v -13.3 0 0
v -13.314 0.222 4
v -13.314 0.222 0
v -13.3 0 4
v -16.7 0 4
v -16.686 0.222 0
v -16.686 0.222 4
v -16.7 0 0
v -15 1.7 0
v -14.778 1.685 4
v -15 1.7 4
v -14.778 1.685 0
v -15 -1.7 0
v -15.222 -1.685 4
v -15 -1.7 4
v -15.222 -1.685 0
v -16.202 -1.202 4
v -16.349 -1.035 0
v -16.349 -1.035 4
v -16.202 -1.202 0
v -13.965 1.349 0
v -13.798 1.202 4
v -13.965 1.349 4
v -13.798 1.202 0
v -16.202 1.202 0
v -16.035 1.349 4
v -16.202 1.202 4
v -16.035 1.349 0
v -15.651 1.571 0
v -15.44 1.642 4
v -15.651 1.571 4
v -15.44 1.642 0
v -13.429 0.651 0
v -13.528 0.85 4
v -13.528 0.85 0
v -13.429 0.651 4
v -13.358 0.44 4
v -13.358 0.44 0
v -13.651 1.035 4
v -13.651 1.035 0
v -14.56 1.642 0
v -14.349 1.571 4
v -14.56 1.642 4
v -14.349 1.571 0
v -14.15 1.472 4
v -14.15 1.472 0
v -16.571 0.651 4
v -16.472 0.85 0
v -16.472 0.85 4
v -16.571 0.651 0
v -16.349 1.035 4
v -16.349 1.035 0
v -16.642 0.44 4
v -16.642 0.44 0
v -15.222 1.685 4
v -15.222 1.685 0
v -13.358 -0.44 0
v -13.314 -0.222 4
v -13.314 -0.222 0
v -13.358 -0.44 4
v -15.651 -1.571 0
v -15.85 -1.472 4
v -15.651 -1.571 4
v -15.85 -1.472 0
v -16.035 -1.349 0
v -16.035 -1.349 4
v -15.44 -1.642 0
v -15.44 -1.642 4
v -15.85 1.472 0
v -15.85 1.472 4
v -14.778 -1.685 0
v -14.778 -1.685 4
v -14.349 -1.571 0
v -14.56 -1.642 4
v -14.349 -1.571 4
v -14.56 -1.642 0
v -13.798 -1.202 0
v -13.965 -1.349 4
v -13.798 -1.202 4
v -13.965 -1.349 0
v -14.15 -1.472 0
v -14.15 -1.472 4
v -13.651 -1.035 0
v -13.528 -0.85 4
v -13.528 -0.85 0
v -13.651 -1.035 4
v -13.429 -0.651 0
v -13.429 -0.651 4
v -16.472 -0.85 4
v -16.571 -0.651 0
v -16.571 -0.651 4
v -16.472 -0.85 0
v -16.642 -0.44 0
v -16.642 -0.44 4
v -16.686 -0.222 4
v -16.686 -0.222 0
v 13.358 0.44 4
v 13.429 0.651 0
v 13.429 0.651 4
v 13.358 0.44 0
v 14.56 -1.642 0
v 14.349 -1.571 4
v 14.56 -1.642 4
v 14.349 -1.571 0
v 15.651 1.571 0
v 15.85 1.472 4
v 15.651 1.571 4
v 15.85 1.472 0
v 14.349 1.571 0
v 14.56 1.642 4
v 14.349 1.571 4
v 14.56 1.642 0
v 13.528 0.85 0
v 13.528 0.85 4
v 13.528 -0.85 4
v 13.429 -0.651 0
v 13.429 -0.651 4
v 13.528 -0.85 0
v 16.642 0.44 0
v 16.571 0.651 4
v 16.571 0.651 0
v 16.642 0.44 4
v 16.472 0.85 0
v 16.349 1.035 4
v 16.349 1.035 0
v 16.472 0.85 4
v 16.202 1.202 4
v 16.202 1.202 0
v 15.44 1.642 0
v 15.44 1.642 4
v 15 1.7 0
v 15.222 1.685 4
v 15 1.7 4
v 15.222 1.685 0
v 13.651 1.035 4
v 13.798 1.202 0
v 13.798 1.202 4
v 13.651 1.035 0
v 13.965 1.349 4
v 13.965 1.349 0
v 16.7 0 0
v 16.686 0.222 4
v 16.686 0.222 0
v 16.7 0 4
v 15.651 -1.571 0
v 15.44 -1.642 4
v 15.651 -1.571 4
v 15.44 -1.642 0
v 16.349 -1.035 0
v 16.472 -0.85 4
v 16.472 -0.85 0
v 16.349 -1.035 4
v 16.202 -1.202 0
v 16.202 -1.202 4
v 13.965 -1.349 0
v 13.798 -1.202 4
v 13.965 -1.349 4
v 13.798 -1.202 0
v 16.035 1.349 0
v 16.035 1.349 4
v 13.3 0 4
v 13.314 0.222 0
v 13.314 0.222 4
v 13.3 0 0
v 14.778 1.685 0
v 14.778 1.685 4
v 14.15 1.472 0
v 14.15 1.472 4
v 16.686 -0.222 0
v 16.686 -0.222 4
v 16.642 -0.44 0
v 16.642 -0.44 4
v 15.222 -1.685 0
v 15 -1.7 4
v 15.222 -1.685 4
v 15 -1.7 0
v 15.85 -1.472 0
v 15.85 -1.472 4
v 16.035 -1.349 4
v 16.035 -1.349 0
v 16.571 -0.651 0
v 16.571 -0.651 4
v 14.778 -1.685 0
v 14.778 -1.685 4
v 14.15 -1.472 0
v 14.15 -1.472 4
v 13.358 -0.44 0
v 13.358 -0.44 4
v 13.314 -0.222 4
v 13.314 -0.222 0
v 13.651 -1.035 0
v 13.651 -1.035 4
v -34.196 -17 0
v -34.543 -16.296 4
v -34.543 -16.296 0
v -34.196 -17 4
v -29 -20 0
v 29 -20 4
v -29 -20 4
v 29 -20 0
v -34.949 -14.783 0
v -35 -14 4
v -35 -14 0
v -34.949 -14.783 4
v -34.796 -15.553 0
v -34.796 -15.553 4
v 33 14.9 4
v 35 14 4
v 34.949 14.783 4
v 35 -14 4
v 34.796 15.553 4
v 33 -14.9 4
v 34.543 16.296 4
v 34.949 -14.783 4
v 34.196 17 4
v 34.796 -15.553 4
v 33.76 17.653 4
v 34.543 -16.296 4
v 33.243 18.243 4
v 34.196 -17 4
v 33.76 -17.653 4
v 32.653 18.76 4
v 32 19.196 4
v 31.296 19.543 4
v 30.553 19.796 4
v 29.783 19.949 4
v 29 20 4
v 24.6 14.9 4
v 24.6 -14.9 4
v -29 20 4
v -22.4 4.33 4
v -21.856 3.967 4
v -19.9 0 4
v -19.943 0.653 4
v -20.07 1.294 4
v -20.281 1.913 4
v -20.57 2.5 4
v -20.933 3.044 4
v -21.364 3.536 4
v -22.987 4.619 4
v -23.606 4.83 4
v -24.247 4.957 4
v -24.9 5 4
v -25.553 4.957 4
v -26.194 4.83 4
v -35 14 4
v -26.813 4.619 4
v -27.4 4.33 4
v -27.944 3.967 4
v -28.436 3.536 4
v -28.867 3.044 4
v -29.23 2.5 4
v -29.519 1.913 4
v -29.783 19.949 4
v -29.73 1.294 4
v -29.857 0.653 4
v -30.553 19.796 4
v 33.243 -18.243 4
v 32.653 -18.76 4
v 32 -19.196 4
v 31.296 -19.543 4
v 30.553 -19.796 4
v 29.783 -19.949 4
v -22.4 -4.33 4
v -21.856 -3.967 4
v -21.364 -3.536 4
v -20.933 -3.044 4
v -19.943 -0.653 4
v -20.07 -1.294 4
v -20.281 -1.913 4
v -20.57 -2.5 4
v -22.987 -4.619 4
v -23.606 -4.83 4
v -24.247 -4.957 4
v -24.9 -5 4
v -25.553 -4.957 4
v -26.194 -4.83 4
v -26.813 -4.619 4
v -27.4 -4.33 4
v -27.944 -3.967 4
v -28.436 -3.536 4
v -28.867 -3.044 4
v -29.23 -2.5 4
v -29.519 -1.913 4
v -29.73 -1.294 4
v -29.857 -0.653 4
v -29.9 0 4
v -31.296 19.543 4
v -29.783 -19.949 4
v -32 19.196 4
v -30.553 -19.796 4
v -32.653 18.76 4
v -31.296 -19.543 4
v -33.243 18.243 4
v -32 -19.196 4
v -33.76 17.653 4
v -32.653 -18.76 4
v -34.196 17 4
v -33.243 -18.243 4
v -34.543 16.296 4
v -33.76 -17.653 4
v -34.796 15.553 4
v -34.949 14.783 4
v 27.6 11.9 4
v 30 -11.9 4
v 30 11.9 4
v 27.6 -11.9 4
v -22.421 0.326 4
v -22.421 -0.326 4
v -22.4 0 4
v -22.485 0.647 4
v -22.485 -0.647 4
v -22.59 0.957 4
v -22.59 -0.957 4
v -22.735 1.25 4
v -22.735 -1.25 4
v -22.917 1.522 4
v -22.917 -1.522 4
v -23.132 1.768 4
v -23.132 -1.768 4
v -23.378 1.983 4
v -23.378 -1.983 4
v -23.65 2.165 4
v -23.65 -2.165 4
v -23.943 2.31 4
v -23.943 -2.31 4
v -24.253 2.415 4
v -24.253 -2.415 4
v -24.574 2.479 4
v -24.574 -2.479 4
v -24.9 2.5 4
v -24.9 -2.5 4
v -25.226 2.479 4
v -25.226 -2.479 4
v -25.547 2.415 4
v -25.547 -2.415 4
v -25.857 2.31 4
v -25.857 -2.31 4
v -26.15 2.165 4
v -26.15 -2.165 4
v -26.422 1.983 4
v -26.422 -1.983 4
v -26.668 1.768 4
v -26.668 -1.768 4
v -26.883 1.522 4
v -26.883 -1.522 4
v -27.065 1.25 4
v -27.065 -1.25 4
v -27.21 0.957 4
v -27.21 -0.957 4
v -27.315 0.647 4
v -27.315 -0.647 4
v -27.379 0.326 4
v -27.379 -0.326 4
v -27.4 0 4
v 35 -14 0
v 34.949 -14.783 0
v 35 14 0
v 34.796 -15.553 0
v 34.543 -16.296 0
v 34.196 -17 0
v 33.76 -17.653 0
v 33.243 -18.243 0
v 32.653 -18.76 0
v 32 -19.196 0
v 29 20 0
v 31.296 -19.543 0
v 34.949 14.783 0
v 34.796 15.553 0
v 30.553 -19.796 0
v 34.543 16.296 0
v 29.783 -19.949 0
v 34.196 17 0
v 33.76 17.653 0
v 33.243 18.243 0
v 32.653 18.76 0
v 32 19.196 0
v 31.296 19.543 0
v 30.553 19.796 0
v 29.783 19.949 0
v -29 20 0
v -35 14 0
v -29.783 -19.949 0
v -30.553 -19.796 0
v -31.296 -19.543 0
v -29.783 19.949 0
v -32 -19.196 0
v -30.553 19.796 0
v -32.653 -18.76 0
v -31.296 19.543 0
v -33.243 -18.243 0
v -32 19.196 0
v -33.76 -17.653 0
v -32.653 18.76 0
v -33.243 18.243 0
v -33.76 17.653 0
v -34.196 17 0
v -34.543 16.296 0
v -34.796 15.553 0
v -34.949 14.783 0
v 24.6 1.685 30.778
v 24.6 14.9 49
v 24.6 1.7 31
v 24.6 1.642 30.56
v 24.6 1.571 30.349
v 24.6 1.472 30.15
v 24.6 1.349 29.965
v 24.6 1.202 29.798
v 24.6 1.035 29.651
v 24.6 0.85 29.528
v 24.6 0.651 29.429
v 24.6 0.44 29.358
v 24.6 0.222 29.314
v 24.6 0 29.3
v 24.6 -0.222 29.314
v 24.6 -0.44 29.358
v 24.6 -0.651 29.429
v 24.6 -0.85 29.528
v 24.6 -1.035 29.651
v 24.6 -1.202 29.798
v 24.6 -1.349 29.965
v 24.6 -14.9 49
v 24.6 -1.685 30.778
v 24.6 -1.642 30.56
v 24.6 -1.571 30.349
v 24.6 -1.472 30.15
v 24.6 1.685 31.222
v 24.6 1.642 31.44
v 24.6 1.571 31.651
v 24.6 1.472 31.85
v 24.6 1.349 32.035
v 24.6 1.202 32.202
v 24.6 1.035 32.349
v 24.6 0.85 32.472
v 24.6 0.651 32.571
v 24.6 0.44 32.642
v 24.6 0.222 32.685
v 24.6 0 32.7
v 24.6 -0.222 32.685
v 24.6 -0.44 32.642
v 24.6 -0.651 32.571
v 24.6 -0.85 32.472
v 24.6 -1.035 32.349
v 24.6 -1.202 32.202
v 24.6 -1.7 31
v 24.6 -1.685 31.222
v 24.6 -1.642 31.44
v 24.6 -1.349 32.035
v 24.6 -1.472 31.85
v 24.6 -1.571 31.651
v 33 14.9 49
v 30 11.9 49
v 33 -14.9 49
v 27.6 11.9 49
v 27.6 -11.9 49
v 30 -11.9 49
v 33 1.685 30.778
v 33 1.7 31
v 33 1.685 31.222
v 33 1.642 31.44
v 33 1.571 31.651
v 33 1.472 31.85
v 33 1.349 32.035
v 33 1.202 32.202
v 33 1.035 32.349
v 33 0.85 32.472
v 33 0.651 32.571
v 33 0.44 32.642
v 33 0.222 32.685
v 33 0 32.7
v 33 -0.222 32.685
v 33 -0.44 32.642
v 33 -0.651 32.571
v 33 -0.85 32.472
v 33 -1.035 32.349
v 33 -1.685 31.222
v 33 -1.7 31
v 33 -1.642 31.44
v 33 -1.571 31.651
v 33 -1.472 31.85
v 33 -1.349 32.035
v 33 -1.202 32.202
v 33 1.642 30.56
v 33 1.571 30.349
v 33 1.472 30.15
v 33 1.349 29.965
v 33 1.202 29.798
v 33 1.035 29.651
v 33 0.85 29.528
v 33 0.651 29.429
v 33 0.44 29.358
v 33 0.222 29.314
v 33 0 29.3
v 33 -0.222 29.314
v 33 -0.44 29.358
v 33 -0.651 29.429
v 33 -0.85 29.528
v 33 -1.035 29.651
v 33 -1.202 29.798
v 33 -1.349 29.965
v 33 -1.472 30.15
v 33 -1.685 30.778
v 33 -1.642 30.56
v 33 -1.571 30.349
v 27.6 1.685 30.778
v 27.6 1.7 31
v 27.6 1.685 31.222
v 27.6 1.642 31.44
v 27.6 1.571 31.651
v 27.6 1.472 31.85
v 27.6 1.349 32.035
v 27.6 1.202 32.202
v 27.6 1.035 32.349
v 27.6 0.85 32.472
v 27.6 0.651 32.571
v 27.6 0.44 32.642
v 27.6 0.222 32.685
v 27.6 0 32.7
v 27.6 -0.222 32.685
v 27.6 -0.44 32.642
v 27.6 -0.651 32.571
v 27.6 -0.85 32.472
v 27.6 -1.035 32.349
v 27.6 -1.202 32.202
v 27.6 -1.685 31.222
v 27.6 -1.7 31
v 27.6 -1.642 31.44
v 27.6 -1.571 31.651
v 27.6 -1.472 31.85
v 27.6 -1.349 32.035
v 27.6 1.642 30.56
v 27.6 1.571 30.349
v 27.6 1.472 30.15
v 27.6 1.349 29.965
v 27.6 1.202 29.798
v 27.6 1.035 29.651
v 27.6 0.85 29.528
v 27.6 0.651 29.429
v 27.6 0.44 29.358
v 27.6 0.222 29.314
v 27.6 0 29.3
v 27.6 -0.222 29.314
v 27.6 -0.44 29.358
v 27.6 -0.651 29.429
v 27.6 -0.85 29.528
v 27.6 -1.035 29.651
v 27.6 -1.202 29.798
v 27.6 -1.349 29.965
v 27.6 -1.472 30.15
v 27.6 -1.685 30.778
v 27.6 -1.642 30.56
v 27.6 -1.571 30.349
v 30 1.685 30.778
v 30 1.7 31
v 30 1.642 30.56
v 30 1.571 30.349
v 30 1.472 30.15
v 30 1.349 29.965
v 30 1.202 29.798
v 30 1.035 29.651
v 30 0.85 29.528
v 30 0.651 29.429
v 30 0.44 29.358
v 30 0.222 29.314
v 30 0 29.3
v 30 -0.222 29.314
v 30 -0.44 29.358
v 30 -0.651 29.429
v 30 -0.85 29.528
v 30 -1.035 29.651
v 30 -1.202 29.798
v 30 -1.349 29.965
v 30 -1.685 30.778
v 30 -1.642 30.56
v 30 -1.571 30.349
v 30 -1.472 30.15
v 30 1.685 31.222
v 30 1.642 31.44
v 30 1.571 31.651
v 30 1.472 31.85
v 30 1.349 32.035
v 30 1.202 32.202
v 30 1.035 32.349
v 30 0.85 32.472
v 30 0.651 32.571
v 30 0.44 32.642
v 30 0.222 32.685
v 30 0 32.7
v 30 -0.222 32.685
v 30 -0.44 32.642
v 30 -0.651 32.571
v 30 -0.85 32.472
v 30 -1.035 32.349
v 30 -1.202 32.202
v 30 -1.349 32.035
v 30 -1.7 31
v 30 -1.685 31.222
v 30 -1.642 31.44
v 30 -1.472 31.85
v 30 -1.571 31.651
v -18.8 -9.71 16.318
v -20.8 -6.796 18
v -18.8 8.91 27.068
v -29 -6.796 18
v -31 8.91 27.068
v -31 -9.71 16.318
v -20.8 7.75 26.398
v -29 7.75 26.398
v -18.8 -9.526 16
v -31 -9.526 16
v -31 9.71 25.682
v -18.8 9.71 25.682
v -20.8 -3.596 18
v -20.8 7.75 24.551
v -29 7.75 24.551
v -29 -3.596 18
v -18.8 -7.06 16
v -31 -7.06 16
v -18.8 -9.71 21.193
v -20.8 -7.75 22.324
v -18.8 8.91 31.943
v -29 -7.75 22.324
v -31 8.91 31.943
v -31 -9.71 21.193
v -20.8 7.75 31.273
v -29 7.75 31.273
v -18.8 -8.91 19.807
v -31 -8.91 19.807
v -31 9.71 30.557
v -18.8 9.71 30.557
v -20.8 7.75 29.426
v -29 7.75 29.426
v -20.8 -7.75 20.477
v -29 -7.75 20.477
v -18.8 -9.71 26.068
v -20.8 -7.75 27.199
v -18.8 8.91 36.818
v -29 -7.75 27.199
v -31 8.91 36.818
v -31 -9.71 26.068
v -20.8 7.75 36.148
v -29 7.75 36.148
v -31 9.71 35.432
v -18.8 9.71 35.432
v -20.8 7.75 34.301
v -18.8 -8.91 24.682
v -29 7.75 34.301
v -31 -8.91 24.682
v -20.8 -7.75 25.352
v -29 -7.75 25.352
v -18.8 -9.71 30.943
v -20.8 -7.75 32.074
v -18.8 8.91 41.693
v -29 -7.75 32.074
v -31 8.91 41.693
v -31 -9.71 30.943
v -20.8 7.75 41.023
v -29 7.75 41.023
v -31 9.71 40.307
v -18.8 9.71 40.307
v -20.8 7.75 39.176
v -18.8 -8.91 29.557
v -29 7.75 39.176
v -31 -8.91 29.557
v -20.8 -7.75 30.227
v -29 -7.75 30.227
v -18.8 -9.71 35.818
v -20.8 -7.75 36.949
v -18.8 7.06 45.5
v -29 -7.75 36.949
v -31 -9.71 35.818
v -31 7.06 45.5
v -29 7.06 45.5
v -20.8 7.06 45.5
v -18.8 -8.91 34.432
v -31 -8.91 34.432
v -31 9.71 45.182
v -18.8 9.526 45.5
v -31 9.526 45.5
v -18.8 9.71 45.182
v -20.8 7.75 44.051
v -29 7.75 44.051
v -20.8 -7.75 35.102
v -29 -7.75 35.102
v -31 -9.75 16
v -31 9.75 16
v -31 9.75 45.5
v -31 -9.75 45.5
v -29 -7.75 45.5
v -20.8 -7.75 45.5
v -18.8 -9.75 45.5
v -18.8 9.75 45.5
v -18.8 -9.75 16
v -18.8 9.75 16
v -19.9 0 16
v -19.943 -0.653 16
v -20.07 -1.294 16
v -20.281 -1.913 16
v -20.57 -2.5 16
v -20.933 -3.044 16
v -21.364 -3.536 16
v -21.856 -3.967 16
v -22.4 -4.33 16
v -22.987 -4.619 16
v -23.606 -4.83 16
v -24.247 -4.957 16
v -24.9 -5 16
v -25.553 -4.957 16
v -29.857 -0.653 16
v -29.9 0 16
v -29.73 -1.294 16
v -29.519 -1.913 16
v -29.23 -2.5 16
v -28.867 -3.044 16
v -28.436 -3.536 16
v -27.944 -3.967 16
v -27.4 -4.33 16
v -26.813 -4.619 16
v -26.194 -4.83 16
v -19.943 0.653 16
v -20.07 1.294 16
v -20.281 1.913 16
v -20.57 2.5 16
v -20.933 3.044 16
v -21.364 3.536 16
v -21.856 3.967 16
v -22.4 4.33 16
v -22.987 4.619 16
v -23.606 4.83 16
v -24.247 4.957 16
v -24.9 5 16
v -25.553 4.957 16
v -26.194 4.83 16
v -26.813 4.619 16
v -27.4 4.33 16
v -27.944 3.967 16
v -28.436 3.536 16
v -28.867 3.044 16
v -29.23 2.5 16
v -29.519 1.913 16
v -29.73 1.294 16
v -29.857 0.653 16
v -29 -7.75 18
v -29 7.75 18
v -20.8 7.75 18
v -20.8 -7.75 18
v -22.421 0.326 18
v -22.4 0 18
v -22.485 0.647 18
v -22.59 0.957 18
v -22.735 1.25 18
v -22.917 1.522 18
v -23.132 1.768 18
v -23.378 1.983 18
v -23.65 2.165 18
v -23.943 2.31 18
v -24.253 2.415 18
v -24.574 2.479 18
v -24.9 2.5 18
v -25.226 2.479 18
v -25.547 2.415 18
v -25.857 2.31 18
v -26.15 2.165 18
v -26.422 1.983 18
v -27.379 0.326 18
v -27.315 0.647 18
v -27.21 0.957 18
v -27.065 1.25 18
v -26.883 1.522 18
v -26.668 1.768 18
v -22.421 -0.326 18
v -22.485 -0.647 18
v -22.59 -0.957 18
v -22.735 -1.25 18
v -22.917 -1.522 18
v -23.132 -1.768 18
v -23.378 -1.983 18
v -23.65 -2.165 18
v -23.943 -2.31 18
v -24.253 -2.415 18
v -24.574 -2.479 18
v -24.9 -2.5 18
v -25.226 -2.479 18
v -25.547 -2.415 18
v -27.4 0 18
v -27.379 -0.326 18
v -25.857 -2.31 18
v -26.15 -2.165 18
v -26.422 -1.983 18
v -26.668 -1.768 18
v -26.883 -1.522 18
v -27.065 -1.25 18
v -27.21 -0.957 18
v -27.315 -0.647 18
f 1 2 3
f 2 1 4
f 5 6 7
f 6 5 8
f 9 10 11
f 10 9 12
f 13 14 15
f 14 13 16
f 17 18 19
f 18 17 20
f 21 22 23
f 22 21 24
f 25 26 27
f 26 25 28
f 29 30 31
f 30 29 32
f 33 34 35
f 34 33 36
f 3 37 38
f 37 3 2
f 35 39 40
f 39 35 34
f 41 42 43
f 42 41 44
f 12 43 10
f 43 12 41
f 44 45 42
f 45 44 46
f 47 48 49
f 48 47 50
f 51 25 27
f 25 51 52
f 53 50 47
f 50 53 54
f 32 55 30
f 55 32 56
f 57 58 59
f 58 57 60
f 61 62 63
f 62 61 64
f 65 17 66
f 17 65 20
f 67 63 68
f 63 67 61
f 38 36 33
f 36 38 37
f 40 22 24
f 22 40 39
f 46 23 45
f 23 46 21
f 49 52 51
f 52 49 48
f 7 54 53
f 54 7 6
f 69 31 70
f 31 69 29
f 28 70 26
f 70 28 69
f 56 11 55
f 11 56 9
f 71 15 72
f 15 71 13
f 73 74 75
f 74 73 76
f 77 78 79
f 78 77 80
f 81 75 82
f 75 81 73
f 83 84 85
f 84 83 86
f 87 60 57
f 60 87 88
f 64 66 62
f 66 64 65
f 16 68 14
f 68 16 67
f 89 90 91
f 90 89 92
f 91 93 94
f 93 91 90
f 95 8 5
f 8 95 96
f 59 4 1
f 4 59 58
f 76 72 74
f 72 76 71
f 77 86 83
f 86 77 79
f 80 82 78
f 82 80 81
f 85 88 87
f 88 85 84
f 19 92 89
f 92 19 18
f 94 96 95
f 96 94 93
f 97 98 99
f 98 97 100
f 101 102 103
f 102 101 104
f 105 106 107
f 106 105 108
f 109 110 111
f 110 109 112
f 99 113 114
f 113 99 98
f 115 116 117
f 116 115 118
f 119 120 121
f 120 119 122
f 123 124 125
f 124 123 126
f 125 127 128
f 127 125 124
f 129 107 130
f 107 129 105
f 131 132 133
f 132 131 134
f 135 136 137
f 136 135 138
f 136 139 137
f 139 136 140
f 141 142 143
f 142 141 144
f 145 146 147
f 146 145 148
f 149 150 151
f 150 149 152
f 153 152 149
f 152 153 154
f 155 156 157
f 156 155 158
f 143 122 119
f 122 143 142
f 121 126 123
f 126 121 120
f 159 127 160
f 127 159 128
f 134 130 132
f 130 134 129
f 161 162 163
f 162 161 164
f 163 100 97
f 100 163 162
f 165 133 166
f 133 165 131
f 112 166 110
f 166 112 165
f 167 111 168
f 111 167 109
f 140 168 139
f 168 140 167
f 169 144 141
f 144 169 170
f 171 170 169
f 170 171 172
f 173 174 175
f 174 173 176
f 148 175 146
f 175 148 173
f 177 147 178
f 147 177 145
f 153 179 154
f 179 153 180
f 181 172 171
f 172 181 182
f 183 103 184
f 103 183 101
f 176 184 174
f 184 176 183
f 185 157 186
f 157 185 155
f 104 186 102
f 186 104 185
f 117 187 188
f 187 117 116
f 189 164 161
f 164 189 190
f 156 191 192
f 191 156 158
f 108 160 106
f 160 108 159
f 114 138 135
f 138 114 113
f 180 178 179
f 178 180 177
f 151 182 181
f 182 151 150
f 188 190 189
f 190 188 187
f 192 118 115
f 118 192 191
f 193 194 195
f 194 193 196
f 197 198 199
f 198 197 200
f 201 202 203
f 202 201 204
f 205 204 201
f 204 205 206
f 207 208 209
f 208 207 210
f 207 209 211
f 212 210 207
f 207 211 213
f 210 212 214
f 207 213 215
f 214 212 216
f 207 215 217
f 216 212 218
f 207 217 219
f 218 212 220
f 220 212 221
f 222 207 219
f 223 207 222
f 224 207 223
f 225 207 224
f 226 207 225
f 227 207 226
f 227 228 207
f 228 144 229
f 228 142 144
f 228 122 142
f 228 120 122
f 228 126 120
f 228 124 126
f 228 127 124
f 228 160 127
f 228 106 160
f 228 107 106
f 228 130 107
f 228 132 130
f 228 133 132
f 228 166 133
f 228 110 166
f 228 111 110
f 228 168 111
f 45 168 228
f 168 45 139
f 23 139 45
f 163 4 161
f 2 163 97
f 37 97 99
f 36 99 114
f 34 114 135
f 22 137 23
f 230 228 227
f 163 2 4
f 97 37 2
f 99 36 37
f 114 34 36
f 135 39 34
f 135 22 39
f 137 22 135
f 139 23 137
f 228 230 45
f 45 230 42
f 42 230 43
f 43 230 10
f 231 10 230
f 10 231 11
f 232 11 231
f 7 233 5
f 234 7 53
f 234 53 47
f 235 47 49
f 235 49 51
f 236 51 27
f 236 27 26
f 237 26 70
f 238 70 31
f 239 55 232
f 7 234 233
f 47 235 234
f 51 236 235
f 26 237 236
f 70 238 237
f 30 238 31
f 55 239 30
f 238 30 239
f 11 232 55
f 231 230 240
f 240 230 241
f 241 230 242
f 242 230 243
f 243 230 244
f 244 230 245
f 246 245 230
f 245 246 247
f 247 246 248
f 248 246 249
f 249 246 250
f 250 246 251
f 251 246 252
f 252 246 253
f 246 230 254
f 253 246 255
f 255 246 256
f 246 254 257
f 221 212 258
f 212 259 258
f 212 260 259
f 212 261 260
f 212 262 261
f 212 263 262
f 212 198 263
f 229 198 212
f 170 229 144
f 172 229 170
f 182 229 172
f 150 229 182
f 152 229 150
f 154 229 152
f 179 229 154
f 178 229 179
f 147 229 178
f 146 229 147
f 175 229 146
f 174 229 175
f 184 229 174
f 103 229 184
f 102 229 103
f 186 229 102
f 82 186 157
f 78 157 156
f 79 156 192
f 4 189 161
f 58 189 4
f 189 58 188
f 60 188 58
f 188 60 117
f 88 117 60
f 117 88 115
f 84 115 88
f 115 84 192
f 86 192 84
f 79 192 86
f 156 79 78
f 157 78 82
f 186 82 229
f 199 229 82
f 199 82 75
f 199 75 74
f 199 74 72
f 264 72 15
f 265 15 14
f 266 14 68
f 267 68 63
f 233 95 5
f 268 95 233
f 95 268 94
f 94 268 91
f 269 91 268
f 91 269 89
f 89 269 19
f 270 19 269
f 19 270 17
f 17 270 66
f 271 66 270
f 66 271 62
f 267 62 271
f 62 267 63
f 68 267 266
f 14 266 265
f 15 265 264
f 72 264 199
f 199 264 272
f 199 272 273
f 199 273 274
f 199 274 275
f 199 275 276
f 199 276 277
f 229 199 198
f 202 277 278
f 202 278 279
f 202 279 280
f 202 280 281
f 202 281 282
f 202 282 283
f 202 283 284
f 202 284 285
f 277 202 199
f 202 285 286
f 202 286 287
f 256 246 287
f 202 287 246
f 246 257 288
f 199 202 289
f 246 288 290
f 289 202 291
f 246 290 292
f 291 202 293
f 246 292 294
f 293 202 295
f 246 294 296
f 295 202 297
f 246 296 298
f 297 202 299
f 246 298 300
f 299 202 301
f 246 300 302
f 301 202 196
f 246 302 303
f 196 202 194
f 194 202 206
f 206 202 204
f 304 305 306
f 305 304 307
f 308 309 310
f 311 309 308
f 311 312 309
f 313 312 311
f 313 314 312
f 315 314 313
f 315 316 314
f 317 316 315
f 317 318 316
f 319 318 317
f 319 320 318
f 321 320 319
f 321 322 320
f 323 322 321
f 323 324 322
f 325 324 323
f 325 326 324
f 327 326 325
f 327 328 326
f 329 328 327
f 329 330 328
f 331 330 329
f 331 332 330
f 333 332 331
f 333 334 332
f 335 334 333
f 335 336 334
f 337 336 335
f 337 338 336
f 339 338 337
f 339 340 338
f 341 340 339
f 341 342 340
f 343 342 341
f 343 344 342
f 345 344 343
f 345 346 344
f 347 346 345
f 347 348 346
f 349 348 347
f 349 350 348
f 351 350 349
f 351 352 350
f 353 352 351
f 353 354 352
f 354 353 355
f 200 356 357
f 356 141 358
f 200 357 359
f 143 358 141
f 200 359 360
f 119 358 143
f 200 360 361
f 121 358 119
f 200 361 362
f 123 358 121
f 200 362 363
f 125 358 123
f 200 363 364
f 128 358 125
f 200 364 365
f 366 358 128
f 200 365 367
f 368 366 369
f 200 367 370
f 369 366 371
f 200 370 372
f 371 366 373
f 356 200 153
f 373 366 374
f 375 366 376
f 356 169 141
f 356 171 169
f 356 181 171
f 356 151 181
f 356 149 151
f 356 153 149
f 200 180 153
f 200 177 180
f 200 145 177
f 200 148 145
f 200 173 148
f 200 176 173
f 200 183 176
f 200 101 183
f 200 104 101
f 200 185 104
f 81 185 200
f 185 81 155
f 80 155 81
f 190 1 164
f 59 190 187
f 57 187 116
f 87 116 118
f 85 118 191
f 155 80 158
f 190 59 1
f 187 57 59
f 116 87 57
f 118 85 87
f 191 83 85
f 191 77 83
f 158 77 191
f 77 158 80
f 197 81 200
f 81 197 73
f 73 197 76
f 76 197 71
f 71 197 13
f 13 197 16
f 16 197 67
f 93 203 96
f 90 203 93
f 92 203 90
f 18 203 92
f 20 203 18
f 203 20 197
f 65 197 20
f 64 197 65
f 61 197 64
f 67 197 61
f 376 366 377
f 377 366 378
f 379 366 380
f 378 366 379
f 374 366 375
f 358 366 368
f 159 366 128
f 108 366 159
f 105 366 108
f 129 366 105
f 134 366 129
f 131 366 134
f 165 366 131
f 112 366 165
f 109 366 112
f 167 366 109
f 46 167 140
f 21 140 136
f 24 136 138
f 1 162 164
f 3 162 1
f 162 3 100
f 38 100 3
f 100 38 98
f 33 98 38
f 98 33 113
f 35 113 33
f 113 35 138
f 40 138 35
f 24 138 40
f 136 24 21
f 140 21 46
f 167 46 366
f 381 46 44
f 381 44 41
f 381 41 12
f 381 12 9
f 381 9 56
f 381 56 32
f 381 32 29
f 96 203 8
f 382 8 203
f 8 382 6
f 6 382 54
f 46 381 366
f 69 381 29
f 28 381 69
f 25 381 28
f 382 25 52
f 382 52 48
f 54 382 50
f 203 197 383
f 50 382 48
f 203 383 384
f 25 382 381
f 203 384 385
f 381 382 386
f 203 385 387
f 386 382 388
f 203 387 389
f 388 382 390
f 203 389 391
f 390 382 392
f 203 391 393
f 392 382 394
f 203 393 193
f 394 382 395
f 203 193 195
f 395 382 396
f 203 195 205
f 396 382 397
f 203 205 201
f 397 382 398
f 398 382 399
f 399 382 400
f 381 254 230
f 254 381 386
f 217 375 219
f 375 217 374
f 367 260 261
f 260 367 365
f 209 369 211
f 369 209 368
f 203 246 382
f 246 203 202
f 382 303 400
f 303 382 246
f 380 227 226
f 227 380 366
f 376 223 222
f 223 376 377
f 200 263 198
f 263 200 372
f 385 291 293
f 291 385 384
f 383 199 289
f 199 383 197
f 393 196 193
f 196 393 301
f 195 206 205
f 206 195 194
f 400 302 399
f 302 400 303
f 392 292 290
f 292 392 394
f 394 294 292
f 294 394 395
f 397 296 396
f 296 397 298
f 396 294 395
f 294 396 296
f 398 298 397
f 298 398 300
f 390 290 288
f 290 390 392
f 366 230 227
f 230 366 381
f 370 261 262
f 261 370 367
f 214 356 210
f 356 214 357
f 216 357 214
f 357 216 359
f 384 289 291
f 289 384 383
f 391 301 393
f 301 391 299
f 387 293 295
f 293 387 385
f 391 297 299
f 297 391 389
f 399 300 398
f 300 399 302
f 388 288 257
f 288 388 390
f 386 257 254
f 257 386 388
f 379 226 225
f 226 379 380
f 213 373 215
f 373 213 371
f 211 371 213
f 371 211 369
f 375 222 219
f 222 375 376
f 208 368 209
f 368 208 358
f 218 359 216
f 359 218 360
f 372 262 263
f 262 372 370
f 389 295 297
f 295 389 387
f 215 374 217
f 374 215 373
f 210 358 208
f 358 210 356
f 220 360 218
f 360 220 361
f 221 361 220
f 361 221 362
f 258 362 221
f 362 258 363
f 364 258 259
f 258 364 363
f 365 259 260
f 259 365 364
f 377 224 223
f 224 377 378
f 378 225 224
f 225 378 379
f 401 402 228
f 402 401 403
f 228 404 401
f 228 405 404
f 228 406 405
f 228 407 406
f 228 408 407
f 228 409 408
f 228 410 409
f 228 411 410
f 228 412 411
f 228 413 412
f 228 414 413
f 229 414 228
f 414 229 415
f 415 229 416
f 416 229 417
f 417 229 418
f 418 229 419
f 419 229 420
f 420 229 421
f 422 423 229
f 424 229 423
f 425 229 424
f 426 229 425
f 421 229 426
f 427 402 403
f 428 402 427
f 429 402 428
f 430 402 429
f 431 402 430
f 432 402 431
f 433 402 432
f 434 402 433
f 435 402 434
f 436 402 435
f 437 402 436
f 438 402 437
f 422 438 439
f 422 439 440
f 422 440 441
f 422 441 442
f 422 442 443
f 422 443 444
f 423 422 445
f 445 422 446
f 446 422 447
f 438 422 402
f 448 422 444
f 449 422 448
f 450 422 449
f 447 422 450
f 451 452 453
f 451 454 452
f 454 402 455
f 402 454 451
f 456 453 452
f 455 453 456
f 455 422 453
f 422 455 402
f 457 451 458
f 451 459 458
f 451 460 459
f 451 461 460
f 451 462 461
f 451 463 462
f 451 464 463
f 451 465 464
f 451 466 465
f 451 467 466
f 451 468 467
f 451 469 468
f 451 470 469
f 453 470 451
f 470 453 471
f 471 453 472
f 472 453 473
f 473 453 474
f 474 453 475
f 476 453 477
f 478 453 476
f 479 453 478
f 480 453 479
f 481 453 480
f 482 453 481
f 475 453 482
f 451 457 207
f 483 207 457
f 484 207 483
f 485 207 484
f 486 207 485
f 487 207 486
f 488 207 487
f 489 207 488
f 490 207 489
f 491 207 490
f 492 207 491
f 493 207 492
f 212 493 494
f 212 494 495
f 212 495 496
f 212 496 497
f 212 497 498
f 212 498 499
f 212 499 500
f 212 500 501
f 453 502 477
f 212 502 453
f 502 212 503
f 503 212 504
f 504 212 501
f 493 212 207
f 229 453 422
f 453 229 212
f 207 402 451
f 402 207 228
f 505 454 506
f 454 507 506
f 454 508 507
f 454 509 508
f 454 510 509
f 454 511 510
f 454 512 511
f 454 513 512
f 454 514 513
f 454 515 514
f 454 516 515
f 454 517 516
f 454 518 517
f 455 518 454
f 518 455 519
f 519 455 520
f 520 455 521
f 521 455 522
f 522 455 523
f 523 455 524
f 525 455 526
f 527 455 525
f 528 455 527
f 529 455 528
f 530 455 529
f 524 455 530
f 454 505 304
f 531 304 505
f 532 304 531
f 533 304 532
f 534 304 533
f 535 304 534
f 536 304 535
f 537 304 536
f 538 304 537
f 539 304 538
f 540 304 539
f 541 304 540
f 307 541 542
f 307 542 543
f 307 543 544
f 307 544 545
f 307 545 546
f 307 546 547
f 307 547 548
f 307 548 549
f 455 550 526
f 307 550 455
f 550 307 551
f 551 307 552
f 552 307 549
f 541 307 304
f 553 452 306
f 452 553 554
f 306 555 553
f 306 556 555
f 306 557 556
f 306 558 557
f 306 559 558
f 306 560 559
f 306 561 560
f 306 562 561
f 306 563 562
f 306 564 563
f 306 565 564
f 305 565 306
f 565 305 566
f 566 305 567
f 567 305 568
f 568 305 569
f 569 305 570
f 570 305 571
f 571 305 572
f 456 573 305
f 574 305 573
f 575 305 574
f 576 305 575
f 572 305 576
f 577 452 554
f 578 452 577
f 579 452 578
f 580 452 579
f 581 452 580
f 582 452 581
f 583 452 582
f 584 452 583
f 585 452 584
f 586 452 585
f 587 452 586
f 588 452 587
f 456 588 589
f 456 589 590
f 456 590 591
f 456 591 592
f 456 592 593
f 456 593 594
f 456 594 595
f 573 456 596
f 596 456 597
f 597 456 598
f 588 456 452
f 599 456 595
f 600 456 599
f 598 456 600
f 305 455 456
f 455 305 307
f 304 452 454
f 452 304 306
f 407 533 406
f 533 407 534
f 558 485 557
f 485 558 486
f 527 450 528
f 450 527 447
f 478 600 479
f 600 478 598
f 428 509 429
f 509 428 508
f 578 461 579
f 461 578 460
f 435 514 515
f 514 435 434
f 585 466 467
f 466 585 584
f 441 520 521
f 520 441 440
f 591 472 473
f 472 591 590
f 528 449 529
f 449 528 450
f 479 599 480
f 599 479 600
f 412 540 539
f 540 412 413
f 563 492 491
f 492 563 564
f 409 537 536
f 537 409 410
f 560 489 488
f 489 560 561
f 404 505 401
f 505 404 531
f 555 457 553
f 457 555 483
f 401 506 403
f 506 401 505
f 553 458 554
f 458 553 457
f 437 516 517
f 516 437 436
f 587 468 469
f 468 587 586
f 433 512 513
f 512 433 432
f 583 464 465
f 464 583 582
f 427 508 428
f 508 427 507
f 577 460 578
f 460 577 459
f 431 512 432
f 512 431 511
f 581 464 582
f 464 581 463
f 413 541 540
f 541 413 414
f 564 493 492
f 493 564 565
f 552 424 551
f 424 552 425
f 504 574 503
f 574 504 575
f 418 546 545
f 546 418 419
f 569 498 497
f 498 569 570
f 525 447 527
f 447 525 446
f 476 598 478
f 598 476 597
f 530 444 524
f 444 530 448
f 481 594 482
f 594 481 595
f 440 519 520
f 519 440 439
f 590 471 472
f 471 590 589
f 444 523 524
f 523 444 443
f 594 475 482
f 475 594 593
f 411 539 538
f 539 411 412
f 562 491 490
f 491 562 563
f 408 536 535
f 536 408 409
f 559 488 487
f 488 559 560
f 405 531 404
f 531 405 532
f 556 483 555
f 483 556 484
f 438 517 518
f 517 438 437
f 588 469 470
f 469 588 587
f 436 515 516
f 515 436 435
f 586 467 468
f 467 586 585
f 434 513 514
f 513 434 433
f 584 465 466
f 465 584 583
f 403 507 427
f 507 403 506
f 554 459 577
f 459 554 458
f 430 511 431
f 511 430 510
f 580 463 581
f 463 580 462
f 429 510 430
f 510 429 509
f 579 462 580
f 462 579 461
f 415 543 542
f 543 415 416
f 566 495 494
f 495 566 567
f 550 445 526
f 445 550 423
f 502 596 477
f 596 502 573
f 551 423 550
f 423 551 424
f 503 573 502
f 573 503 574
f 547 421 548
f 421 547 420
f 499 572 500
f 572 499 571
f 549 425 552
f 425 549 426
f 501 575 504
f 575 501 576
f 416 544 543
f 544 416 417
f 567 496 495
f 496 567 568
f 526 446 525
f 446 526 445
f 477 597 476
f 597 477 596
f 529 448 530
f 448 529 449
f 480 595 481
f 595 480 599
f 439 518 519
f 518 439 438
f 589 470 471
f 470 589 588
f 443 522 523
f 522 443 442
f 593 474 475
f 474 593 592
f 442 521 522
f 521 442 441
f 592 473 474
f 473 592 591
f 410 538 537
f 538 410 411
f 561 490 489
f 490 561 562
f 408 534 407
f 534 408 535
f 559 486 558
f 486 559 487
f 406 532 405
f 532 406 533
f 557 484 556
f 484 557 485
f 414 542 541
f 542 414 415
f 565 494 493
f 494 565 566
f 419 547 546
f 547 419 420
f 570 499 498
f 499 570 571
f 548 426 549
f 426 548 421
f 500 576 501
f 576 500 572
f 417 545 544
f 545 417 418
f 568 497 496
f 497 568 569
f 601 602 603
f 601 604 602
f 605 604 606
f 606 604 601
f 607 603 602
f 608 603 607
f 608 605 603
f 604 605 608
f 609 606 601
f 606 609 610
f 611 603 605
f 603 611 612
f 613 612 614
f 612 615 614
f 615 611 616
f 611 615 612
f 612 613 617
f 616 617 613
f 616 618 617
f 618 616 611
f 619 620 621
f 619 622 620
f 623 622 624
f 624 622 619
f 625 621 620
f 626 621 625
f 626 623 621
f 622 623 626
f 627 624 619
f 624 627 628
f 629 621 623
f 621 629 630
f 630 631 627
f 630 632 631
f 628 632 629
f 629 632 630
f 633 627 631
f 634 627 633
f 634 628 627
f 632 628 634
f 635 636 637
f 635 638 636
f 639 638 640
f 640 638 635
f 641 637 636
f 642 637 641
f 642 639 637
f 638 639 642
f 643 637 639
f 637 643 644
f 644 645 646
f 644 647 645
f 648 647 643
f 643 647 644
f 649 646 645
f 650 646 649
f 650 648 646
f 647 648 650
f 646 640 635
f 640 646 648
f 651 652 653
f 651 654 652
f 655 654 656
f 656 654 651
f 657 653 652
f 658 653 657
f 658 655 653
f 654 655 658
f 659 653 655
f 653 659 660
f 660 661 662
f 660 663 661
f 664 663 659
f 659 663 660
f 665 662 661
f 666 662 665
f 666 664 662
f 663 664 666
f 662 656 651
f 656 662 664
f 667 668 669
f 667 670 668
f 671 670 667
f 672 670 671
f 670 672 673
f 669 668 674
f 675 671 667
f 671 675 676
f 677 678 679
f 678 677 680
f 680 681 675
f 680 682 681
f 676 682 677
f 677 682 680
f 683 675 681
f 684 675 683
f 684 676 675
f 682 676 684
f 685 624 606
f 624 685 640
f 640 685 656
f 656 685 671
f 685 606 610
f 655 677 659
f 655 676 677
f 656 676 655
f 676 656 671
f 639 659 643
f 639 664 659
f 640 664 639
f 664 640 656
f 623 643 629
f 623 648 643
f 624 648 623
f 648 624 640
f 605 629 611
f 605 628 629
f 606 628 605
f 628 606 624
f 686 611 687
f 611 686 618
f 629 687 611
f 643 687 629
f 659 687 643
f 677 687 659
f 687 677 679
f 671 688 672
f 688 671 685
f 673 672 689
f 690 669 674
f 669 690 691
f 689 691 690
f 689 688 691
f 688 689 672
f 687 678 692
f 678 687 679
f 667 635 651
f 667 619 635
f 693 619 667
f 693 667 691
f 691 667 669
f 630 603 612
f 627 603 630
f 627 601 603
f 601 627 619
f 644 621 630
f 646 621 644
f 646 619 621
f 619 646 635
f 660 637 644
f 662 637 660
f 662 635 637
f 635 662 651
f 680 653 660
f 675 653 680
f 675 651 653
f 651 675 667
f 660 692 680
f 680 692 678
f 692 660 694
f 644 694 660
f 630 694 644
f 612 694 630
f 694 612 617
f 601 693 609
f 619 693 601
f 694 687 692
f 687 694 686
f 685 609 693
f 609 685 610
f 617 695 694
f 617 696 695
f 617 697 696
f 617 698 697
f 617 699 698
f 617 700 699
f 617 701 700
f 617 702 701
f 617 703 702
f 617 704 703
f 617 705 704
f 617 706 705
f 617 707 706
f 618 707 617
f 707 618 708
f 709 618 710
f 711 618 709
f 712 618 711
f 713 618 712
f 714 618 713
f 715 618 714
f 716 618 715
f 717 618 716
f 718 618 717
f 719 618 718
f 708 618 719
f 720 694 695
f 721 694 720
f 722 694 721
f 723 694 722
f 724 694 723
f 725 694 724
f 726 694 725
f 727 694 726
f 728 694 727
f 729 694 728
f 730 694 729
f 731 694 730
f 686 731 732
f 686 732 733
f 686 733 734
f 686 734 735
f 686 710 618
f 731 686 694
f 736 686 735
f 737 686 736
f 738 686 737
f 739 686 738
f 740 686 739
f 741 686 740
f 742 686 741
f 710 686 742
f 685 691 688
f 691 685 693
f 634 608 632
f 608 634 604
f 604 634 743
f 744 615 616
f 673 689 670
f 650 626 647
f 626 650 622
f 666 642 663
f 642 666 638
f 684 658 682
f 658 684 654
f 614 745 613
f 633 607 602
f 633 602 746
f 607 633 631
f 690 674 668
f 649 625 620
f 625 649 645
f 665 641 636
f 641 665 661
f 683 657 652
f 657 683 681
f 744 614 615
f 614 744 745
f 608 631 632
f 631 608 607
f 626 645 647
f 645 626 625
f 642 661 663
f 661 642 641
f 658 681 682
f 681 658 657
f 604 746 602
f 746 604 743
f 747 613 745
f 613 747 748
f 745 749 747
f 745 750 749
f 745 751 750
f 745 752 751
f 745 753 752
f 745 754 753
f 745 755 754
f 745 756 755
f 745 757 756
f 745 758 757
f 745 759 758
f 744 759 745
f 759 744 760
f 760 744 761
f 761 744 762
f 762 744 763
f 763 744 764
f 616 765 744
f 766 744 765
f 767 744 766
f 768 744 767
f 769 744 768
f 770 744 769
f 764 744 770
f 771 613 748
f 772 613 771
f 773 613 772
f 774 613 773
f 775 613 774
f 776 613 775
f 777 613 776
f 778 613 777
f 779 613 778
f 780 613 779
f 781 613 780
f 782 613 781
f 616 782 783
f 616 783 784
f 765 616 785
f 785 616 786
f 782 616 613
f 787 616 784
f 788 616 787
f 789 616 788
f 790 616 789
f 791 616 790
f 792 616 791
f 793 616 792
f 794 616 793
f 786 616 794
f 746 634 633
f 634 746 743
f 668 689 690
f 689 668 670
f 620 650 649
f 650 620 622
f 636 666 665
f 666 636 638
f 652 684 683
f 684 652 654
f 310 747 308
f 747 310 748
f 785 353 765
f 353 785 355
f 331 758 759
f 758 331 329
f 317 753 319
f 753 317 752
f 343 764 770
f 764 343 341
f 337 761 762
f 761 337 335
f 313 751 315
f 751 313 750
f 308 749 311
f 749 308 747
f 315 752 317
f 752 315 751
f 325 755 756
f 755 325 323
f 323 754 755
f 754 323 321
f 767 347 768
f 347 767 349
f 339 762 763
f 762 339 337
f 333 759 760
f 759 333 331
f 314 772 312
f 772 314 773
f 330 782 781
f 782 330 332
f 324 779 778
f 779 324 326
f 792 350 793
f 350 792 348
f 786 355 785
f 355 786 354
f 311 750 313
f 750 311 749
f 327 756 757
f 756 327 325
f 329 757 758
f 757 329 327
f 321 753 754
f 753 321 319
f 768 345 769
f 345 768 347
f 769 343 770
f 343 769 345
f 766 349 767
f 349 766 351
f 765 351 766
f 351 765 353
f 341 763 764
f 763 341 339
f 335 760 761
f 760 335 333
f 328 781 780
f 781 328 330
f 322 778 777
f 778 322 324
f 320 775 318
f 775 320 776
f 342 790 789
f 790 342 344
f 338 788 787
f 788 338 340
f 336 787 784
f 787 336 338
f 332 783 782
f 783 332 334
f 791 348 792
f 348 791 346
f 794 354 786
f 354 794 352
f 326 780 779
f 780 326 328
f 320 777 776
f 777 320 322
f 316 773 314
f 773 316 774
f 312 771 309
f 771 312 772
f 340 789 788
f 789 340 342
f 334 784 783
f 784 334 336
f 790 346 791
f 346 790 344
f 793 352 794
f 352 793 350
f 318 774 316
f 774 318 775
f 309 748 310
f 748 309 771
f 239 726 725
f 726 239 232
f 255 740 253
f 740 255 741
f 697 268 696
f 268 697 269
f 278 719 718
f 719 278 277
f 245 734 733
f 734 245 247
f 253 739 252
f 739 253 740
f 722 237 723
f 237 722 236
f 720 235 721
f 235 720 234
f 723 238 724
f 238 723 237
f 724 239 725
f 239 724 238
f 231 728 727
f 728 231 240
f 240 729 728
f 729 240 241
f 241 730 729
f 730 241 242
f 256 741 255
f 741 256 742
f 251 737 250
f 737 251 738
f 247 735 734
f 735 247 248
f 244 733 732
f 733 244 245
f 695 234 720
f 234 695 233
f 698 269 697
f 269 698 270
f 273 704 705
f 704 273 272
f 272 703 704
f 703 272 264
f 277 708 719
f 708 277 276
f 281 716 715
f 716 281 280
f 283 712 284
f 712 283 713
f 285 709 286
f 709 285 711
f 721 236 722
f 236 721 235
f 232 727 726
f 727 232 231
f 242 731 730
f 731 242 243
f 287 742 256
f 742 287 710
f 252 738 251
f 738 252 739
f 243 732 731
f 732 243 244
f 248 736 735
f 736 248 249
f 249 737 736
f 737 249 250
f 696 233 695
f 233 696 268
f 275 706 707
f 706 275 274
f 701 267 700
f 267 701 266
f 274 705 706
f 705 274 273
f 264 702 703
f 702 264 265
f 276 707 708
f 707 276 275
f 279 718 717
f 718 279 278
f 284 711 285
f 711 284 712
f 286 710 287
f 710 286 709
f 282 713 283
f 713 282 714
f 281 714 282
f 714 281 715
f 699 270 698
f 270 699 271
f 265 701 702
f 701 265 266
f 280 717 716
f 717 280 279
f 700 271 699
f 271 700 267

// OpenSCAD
// AgroConecta — Robô de Campo
// Suporte de sensores para o chassi do carrinho (impressão 3D, PLA/PETG)
//
//  - Garra vertical para o sensor CAPACITIVO de umidade do solo (v1.2), com trava por parafuso,
//    permitindo ajustar a profundidade de inserção no canteiro.
//  - Abrigo ventilado (tipo "abrigo meteorológico") para o DHT22: aletas inclinadas deixam o ar
//    circular e protegem da radiação solar direta, evitando leituras de temperatura infladas.
//  - Base com furos de fixação no chassi (padrão de 30 mm entre furos, parafuso M3).
//
// Todas as medidas em milímetros e parametrizadas abaixo.

$fn = 48;

// --------------------------------------------------------------- parâmetros
base_comp        = 70;    // comprimento da base que vai no chassi
base_larg        = 40;
base_esp         = 4;
furo_m3          = 3.4;   // folga para parafuso M3
dist_furos       = 30;

solo_larg_pcb    = 23;    // sensor capacitivo v1.2
solo_esp_pcb     = 1.6;
folga            = 0.4;
garra_alt        = 45;
garra_parede     = 3;

dht_larg         = 15.5;  // DHT22 (15.1 x 25 x 7.7 mm) + folga
dht_alt          = 25.5;
dht_prof         = 8.2;
abrigo_parede    = 2;
aletas           = 5;

// --------------------------------------------------------------- base
module base() {
  difference() {
    hull() {
      for (x = [-base_comp/2 + 6, base_comp/2 - 6], y = [-base_larg/2 + 6, base_larg/2 - 6])
        translate([x, y, 0]) cylinder(r = 6, h = base_esp);
    }
    for (x = [-dist_furos/2, dist_furos/2]) translate([x, 0, -1]) cylinder(d = furo_m3, h = base_esp + 2);
  }
}

// --------------------------------------------------------------- garra do sensor de solo
module garra_solo() {
  larg = solo_larg_pcb + 2*folga + 2*garra_parede;
  prof = solo_esp_pcb + 2*folga + 2*garra_parede;
  translate([base_comp/2 - prof/2 - 2, 0, base_esp])
  difference() {
    translate([-prof/2, -larg/2, 0]) cube([prof, larg, garra_alt]);
    // rasgo vertical por onde a placa do sensor desliza
    translate([-(solo_esp_pcb + 2*folga)/2, -(solo_larg_pcb + 2*folga)/2, -1])
      cube([solo_esp_pcb + 2*folga, solo_larg_pcb + 2*folga, garra_alt + 2]);
    // furo da trava (parafuso M3 aperta a placa na altura desejada)
    translate([-prof, 0, garra_alt * 0.6]) rotate([0, 90, 0]) cylinder(d = furo_m3, h = prof * 2);
  }
}

// --------------------------------------------------------------- abrigo ventilado do DHT22
module abrigo_dht() {
  larg = dht_larg + 2*abrigo_parede;
  prof = dht_prof + 2*abrigo_parede;
  alt  = dht_alt + 2*abrigo_parede;
  translate([-base_comp/2 + prof/2 + 4, 0, base_esp + 12])
  difference() {
    translate([-prof/2, -larg/2, 0]) cube([prof, larg, alt]);
    // cavidade do sensor
    translate([-dht_prof/2, -dht_larg/2, abrigo_parede]) cube([dht_prof, dht_larg, dht_alt + abrigo_parede + 1]);
    // aletas inclinadas nas laterais (ventilação sem sol direto)
    for (i = [0 : aletas - 1])
      translate([0, 0, abrigo_parede + 3 + i * (dht_alt - 6) / (aletas - 1)])
        rotate([0, 0, 0]) rotate([30, 0, 0])
          cube([prof + 2, larg + 2, 1.6], center = true);
    // passagem dos fios por baixo
    translate([0, 0, -1]) cylinder(d = 5, h = abrigo_parede + 2);
  }
  // pilar que eleva o abrigo acima do chassi (afasta do calor dos motores)
  translate([-base_comp/2 + prof/2 + 4, 0, base_esp])
    difference() {
      cylinder(d = 10, h = 12);
      translate([0, 0, -1]) cylinder(d = 5, h = 14);
    }
}

// --------------------------------------------------------------- montagem
base();
garra_solo();
abrigo_dht();
